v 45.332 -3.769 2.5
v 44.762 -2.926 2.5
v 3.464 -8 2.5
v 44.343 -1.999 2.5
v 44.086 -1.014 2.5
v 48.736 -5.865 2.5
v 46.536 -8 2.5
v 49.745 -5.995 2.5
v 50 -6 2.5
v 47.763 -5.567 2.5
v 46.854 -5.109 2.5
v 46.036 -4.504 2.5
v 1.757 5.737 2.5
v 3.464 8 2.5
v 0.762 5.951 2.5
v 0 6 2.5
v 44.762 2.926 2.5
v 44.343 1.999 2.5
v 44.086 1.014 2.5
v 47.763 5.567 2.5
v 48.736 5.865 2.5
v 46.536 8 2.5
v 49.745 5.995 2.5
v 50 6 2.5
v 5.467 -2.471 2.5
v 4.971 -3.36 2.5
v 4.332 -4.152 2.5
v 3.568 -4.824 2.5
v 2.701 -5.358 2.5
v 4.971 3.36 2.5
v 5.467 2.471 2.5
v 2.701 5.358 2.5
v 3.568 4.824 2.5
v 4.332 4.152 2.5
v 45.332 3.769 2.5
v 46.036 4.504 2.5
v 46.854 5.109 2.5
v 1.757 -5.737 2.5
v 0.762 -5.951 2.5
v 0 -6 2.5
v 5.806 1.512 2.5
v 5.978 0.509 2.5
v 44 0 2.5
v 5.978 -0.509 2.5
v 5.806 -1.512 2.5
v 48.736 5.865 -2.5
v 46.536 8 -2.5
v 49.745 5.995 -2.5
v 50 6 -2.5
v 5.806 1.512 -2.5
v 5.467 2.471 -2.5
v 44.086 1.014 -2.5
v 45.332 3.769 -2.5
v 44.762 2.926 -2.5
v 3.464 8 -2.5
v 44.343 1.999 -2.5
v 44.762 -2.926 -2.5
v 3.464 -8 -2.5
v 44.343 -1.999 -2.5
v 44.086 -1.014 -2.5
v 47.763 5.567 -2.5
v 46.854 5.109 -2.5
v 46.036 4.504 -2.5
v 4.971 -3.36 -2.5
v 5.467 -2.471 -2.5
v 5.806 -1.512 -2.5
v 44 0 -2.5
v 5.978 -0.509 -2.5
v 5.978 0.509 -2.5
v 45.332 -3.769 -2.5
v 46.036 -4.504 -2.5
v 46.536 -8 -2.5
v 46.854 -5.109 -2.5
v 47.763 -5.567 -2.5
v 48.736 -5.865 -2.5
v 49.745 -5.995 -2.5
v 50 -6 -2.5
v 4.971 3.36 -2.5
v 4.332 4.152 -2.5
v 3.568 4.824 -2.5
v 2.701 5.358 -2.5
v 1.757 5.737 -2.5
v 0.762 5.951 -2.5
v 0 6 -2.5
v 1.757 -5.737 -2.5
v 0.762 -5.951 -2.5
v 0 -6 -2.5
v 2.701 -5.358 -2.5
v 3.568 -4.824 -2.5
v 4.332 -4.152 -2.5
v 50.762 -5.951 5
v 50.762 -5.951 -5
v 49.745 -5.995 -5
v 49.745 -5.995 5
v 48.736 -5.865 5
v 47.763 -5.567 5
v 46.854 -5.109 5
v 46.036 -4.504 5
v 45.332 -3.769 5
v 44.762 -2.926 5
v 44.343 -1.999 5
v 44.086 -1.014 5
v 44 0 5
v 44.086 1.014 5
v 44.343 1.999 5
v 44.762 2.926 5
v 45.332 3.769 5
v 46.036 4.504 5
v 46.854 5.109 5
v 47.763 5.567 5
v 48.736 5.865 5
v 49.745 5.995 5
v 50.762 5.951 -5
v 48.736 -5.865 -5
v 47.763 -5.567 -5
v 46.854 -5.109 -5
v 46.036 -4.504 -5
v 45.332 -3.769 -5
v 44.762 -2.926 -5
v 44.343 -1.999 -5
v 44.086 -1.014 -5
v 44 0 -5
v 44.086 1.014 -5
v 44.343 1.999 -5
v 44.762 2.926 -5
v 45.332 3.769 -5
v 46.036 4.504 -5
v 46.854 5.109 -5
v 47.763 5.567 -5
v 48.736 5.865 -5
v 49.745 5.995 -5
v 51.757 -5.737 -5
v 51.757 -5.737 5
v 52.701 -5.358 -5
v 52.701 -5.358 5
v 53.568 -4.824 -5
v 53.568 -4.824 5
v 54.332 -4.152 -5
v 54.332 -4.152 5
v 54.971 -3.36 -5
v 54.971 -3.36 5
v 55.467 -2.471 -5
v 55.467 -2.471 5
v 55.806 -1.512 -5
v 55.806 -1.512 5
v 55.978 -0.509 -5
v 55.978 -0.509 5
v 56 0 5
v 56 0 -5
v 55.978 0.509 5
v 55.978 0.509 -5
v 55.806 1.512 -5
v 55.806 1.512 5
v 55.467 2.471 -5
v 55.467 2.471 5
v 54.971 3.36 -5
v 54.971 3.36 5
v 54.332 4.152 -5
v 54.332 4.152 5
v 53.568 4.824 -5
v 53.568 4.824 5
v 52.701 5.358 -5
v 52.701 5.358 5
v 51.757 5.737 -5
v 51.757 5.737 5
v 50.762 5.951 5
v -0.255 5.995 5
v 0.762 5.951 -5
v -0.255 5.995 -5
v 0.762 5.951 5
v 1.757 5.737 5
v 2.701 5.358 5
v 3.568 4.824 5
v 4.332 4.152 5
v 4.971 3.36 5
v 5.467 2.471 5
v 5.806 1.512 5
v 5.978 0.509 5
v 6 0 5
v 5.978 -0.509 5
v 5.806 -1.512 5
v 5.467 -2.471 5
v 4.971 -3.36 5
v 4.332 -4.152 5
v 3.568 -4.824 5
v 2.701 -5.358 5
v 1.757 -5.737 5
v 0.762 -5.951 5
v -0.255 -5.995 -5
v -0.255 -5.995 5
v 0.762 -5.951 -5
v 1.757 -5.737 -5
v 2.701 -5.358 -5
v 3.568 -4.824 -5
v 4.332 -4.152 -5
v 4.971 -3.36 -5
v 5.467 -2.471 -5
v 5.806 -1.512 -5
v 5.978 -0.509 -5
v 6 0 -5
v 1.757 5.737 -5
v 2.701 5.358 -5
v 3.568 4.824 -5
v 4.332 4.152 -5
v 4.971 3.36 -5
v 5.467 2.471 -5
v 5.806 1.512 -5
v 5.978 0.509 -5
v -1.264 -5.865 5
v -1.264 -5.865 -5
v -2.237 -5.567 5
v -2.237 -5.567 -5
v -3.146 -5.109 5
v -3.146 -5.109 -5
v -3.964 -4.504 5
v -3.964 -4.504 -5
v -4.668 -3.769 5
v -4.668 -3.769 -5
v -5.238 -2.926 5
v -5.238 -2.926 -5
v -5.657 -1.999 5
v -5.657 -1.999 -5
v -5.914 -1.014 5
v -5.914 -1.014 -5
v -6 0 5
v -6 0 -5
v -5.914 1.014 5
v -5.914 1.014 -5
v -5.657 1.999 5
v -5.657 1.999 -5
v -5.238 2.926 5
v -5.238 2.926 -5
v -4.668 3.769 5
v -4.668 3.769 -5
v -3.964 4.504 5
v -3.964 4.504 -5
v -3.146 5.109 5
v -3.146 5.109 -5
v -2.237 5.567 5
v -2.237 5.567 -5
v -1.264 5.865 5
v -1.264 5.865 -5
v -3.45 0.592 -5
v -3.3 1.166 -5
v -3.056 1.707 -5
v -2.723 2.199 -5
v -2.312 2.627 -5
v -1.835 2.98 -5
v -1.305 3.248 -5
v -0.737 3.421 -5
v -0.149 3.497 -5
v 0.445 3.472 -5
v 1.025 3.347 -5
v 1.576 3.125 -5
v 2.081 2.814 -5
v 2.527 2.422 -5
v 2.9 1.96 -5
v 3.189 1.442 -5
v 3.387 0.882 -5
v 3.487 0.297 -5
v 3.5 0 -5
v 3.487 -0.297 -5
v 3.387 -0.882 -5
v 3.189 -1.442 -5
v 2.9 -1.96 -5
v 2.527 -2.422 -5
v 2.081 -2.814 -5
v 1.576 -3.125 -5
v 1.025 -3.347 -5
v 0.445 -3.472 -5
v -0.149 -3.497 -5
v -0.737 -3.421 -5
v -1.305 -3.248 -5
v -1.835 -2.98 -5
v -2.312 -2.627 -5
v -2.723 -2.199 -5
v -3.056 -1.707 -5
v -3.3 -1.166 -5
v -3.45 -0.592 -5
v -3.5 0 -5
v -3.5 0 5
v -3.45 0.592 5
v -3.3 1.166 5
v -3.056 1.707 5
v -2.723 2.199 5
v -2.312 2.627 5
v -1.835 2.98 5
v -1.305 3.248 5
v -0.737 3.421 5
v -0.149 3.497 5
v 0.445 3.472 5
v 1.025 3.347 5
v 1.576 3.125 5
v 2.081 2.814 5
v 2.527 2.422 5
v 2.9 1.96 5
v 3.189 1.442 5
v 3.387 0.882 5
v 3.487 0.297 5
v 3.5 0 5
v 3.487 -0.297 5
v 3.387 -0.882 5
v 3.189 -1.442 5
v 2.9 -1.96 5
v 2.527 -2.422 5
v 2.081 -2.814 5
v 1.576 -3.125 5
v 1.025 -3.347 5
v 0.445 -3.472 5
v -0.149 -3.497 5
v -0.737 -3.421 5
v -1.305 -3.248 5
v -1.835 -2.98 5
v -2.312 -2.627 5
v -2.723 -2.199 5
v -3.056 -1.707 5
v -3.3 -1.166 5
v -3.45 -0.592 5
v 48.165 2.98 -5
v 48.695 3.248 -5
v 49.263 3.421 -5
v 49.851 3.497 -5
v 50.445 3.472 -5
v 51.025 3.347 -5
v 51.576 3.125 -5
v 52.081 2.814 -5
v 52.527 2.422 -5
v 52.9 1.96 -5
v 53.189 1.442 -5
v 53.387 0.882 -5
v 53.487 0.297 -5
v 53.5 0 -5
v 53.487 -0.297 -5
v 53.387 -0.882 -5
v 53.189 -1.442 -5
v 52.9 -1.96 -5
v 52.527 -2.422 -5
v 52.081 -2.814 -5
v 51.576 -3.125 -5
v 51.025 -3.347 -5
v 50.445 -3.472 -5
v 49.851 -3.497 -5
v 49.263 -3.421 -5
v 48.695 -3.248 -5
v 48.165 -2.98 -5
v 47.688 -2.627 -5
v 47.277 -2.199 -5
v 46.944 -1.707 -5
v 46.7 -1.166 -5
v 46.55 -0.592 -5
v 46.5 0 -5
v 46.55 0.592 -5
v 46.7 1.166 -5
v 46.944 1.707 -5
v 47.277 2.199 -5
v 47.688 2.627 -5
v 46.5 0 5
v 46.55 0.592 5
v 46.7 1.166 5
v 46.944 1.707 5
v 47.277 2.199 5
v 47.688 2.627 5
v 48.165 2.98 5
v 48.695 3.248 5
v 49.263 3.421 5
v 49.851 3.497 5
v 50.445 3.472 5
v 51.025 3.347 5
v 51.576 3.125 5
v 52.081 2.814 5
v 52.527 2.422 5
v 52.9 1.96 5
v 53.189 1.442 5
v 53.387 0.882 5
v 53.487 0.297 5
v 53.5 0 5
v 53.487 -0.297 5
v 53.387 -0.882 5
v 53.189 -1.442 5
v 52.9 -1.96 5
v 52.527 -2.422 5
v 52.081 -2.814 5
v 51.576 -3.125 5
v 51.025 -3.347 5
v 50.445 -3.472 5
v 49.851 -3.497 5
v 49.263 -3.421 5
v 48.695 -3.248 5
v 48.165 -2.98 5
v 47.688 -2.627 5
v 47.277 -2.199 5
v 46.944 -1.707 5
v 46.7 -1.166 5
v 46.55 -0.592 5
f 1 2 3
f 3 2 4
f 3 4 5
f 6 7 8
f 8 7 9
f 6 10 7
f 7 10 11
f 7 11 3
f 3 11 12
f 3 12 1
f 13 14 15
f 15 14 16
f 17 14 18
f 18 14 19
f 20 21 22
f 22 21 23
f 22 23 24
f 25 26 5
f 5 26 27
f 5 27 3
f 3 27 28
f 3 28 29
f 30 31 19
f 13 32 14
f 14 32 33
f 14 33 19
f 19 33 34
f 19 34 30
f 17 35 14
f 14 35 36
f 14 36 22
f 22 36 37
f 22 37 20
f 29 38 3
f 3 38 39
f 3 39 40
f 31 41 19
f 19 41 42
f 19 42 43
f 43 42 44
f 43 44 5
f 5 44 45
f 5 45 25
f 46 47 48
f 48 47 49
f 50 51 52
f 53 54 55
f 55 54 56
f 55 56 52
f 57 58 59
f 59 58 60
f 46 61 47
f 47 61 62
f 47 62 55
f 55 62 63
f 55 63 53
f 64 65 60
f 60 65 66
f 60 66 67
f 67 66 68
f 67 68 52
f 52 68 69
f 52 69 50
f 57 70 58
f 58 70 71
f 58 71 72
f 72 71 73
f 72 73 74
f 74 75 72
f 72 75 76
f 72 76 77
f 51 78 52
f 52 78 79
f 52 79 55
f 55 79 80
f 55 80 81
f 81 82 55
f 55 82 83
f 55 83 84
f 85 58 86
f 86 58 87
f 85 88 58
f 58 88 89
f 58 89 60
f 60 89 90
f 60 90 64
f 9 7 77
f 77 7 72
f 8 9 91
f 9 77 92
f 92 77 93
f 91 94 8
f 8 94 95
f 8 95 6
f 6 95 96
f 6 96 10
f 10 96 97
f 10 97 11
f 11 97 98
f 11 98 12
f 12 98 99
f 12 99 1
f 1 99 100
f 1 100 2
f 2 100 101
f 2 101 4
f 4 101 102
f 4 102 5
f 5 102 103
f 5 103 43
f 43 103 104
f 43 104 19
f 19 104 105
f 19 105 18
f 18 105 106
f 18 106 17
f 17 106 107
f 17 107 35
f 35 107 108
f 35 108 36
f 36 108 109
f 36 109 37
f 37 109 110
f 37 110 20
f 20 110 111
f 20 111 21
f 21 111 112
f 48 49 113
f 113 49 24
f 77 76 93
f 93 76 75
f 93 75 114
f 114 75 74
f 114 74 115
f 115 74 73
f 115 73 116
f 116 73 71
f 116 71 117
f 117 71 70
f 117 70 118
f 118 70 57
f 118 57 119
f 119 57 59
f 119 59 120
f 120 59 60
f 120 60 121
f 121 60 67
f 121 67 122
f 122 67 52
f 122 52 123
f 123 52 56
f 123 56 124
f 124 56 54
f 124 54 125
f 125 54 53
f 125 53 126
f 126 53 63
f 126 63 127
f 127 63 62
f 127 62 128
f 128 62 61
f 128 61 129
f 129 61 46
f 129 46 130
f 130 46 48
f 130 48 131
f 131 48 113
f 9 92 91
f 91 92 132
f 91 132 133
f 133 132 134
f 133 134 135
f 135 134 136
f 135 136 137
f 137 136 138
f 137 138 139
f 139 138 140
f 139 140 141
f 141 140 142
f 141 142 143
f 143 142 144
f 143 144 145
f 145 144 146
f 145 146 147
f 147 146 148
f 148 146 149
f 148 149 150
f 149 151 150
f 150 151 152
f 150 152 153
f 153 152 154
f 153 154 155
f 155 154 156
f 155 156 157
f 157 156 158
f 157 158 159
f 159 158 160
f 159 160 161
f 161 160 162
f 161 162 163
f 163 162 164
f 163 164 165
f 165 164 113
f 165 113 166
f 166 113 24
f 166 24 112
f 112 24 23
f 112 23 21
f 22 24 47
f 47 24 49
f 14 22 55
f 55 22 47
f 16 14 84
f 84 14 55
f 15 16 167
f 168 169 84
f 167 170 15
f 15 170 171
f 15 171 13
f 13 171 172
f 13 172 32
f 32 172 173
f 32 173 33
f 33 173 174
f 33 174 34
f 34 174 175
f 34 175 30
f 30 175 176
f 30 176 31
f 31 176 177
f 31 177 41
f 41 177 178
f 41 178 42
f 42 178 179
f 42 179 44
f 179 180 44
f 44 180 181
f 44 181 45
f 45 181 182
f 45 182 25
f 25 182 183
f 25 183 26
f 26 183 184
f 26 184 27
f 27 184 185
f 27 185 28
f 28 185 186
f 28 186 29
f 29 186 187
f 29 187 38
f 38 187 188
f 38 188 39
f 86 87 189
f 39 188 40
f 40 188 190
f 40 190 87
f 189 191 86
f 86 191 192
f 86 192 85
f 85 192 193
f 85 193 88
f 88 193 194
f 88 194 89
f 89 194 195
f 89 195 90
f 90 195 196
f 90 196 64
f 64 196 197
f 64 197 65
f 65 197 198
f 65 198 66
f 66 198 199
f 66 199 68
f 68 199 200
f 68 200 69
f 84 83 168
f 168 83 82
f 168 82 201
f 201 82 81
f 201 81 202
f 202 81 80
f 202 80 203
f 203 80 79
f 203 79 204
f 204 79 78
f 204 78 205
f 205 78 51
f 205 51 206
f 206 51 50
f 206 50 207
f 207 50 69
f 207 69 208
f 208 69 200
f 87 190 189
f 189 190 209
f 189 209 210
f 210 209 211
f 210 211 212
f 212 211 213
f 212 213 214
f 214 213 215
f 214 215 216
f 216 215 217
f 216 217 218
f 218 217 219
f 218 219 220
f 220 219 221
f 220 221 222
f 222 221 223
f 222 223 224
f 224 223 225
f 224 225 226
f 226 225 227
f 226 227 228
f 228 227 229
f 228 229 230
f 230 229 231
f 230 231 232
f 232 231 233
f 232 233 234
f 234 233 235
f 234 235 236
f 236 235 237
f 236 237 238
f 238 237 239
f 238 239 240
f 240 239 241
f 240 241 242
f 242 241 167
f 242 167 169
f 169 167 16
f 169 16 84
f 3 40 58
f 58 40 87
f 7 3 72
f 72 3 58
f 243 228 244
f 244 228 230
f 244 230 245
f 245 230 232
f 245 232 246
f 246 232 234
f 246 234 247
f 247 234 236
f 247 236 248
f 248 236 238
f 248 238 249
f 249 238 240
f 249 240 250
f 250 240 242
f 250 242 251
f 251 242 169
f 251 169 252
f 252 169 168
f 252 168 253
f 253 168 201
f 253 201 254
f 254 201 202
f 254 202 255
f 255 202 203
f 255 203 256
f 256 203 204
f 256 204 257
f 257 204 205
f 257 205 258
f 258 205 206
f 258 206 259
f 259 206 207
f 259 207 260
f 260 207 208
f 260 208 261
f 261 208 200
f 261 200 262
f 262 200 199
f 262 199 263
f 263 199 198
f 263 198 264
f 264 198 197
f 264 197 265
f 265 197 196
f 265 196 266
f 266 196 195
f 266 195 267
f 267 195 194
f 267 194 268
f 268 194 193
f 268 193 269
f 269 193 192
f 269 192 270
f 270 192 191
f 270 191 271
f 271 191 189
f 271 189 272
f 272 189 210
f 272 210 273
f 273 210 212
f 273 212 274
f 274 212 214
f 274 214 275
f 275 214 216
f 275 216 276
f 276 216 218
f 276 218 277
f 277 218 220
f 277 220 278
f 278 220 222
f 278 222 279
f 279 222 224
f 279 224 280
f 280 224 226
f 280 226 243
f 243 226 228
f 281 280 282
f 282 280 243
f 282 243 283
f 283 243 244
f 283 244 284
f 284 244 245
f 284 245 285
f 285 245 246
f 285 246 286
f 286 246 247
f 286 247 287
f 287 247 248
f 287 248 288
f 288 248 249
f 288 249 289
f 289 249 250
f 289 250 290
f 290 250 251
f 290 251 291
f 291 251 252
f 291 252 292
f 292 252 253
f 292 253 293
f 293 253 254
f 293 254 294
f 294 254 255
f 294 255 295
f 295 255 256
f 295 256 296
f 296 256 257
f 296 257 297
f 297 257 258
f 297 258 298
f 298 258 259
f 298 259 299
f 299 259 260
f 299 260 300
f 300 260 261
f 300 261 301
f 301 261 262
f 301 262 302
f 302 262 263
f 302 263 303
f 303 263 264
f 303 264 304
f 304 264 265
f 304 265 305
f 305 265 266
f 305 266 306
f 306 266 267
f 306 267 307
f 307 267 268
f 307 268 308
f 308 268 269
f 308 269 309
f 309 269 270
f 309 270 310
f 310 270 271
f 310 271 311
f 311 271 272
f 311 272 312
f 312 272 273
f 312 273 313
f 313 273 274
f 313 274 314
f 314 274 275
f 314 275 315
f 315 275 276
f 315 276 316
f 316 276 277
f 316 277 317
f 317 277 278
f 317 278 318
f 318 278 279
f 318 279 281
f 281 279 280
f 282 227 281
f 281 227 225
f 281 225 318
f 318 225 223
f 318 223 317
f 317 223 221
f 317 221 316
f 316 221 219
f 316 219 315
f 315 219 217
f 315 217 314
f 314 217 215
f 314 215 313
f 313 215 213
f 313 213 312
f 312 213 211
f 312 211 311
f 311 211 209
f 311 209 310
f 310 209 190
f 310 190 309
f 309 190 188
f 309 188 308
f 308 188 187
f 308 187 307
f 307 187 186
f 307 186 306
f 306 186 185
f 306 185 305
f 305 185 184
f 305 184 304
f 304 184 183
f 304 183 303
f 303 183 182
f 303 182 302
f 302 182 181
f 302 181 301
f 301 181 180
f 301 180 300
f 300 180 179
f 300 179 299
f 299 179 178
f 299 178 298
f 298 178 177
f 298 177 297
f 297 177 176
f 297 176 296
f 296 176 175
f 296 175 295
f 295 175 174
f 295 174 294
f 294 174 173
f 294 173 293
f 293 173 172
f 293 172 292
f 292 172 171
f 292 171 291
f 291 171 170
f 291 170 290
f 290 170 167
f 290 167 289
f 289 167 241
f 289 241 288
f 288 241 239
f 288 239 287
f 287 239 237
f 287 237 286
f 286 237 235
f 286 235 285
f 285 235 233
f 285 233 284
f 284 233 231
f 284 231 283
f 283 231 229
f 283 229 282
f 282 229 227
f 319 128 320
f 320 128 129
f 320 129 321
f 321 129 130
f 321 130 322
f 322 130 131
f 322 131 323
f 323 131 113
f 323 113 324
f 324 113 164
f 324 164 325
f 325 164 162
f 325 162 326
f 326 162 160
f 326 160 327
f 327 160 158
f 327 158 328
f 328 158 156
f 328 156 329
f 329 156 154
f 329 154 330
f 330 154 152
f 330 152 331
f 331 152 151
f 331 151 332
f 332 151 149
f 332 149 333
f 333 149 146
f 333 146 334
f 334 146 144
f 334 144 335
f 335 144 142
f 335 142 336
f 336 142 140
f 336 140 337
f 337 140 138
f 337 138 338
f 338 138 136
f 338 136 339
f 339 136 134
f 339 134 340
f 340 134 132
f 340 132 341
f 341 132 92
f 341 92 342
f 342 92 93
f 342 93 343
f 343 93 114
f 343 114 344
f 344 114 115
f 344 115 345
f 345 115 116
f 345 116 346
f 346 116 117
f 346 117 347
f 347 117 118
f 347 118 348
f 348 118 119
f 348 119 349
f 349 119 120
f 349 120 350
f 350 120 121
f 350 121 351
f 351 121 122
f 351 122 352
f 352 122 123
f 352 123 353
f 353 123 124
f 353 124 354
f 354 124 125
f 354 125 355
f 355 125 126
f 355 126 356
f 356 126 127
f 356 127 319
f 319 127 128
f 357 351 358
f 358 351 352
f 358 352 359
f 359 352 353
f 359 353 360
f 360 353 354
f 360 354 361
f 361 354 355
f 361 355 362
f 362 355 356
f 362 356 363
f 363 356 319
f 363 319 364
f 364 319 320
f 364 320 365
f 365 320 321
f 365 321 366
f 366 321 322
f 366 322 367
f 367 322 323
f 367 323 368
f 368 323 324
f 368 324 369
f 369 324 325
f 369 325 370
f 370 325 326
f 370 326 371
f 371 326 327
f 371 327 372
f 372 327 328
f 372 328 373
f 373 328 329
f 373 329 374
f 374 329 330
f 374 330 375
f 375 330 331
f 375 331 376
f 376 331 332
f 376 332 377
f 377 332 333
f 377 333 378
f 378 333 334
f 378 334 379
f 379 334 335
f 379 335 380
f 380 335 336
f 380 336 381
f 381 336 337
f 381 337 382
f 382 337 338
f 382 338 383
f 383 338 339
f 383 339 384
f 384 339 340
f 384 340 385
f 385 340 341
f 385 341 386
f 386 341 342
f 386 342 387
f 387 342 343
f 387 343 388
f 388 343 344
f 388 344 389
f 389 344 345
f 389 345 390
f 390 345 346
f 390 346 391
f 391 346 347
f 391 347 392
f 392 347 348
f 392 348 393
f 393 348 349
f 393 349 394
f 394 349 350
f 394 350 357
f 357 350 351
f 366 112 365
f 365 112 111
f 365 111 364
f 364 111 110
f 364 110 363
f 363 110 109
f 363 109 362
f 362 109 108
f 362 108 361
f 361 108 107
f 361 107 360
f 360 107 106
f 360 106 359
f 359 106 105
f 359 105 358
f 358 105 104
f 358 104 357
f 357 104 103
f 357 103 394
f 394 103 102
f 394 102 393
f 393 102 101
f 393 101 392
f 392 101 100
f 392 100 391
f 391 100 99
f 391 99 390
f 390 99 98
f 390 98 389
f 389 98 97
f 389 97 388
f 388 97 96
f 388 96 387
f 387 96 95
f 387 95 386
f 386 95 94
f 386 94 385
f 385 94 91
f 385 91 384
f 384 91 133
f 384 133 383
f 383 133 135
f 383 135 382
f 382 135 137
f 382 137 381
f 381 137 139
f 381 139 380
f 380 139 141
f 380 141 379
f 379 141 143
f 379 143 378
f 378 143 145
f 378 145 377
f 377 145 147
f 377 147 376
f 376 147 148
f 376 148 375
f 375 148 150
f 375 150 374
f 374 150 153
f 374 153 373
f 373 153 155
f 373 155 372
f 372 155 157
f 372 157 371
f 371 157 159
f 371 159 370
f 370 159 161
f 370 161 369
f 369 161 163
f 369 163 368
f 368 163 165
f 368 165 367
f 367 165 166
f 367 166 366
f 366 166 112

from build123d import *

# Parameters (mm, degrees)
SKETCH1_R           = 6
SKETCH1_R_2         = 3.5
BOSS_EXTRUDE1_DEPTH = 2.5
SKETCH4_R           = 6
SKETCH4_R_2         = 3.5
BOSS_EXTRUDE2_DEPTH = 5


with BuildPart() as part:
    # Sketch1 → Boss-Extrude1 (new, symmetric)
    # profile 1 of 3: a face of its own
    with BuildSketch(Plane.XY):
        with BuildLine():
            Line((3.464101615, 8), (0, 6))
            ThreePointArc((0, 6), (4.242640687, 4.242640687), (6, 0))
            ThreePointArc((6, 0), (4.242640687, -4.242640687), (0, -6))
            Line((0, -6), (3.464101615, -8))
            Line((3.464101615, -8), (46.535898385, -8))
            Line((46.535898385, -8), (50, -6))
            ThreePointArc((50, -6), (44, 0), (50, 6))
            Line((50, 6), (46.535898385, 8))
            Line((46.535898385, 8), (3.464101615, 8))
        make_face()
    # profile 2 of 3: a face of its own
    with BuildSketch(Plane.XY):
        Circle(SKETCH1_R)
        Circle(SKETCH1_R_2, mode=Mode.SUBTRACT)
    # profile 3 of 3: a face of its own
    with BuildSketch(Plane.XY):
        with Locations((50, 0)):
            Circle(SKETCH1_R)
        with Locations((50, 0)):
            Circle(SKETCH1_R_2, mode=Mode.SUBTRACT)
    extrude(amount=BOSS_EXTRUDE1_DEPTH, both=True)

    # Sketch4 → Boss-Extrude2 (add, symmetric)
    # profile 1 of 2: a face of its own
    with BuildSketch(Plane.XY):
        Circle(SKETCH4_R)
        Circle(SKETCH4_R_2, mode=Mode.SUBTRACT)
    # profile 2 of 2: a face of its own
    with BuildSketch(Plane.XY):
        with Locations((50, 0)):
            Circle(SKETCH4_R)
        with Locations((50, 0)):
            Circle(SKETCH4_R_2, mode=Mode.SUBTRACT)
    extrude(amount=BOSS_EXTRUDE2_DEPTH, both=True)


solid = part.part
